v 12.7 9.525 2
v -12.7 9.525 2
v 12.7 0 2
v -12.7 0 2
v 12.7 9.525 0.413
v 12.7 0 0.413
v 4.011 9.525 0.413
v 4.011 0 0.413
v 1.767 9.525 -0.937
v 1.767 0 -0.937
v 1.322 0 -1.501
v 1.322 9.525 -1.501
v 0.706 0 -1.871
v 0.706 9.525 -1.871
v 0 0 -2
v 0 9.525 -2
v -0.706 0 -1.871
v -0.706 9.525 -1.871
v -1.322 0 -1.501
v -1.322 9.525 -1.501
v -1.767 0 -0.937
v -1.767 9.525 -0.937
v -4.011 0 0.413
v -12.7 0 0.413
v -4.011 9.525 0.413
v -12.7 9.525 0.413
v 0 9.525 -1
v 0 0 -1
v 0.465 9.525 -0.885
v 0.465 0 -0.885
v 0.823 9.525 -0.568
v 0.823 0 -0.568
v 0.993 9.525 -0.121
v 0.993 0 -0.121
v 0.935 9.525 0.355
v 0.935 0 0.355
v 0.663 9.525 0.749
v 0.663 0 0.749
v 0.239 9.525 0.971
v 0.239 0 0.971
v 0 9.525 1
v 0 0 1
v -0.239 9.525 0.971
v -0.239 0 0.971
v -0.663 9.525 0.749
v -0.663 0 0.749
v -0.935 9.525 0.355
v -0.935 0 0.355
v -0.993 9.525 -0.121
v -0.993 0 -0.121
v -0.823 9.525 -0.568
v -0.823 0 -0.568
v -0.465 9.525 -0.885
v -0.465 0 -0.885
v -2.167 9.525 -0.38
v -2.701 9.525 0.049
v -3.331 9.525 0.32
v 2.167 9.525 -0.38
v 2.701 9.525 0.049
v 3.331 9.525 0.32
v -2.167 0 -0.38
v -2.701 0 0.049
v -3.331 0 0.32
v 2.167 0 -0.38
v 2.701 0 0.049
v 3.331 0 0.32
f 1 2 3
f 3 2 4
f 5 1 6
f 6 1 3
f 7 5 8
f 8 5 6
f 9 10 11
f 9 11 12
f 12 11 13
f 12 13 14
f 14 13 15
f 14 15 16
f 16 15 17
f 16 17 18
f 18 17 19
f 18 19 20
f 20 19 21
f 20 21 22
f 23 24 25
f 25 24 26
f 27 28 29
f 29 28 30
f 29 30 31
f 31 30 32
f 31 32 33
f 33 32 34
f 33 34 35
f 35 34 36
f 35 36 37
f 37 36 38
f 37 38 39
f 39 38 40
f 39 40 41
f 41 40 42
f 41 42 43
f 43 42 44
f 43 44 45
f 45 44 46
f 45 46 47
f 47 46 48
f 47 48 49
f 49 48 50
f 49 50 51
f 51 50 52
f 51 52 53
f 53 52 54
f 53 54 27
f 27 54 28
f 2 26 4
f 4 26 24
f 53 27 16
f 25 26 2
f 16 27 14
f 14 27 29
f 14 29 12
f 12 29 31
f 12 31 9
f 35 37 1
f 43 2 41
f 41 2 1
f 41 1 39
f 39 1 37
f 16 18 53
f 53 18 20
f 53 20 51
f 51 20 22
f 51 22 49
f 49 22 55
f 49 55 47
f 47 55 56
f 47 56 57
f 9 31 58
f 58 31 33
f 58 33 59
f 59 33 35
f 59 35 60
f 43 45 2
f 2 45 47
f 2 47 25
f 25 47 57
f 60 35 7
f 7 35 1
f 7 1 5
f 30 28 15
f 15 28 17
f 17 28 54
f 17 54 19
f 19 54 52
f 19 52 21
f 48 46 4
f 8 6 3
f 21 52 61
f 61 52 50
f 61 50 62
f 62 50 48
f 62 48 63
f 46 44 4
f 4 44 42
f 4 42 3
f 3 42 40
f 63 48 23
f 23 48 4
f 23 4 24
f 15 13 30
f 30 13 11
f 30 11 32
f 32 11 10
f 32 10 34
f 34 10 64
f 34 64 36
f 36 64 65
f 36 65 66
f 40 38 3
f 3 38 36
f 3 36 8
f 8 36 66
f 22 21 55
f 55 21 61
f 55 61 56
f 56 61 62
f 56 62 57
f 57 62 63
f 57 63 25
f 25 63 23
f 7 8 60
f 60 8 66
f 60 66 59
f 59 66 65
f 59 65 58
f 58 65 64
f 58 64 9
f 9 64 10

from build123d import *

# Parameters (mm, degrees)
SKETCH1_R           = 1
BOSS_EXTRUDE1_DEPTH = 9.525
FILLET1_R           = 2.54


with BuildPart() as part:
    # Sketch1 → Boss-Extrude1 (new body)
    with BuildSketch(Plane(origin=(0, 0, 0), x_dir=(1, 0, 0), z_dir=(0, 1, 0))):
        with BuildLine():
            Line((-12.7, -0.4125), (-12.7, -2))
            Line((-12.7, -2), (12.7, -2))
            Line((12.7, -2), (12.7, -0.4125))
            Line((12.7, -0.4125), (1.956998659, -0.4125))
            ThreePointArc((1.956998659, -0.4125), (0, 2), (-1.956998659, -0.4125))
            Line((-1.956998659, -0.4125), (-12.7, -0.4125))
        make_face()
        Circle(SKETCH1_R, mode=Mode.SUBTRACT)
    extrude(amount=BOSS_EXTRUDE1_DEPTH)

    # Fillet1
    fillet1_edges = [part.edges().sort_by_distance(p)[0] for p in [
        (-1.956998659, 4.7625, 0.4125),
        (1.956998659, 4.7625, 0.4125),
    ]]
    fillet(fillet1_edges, radius=FILLET1_R)


solid = part.part
